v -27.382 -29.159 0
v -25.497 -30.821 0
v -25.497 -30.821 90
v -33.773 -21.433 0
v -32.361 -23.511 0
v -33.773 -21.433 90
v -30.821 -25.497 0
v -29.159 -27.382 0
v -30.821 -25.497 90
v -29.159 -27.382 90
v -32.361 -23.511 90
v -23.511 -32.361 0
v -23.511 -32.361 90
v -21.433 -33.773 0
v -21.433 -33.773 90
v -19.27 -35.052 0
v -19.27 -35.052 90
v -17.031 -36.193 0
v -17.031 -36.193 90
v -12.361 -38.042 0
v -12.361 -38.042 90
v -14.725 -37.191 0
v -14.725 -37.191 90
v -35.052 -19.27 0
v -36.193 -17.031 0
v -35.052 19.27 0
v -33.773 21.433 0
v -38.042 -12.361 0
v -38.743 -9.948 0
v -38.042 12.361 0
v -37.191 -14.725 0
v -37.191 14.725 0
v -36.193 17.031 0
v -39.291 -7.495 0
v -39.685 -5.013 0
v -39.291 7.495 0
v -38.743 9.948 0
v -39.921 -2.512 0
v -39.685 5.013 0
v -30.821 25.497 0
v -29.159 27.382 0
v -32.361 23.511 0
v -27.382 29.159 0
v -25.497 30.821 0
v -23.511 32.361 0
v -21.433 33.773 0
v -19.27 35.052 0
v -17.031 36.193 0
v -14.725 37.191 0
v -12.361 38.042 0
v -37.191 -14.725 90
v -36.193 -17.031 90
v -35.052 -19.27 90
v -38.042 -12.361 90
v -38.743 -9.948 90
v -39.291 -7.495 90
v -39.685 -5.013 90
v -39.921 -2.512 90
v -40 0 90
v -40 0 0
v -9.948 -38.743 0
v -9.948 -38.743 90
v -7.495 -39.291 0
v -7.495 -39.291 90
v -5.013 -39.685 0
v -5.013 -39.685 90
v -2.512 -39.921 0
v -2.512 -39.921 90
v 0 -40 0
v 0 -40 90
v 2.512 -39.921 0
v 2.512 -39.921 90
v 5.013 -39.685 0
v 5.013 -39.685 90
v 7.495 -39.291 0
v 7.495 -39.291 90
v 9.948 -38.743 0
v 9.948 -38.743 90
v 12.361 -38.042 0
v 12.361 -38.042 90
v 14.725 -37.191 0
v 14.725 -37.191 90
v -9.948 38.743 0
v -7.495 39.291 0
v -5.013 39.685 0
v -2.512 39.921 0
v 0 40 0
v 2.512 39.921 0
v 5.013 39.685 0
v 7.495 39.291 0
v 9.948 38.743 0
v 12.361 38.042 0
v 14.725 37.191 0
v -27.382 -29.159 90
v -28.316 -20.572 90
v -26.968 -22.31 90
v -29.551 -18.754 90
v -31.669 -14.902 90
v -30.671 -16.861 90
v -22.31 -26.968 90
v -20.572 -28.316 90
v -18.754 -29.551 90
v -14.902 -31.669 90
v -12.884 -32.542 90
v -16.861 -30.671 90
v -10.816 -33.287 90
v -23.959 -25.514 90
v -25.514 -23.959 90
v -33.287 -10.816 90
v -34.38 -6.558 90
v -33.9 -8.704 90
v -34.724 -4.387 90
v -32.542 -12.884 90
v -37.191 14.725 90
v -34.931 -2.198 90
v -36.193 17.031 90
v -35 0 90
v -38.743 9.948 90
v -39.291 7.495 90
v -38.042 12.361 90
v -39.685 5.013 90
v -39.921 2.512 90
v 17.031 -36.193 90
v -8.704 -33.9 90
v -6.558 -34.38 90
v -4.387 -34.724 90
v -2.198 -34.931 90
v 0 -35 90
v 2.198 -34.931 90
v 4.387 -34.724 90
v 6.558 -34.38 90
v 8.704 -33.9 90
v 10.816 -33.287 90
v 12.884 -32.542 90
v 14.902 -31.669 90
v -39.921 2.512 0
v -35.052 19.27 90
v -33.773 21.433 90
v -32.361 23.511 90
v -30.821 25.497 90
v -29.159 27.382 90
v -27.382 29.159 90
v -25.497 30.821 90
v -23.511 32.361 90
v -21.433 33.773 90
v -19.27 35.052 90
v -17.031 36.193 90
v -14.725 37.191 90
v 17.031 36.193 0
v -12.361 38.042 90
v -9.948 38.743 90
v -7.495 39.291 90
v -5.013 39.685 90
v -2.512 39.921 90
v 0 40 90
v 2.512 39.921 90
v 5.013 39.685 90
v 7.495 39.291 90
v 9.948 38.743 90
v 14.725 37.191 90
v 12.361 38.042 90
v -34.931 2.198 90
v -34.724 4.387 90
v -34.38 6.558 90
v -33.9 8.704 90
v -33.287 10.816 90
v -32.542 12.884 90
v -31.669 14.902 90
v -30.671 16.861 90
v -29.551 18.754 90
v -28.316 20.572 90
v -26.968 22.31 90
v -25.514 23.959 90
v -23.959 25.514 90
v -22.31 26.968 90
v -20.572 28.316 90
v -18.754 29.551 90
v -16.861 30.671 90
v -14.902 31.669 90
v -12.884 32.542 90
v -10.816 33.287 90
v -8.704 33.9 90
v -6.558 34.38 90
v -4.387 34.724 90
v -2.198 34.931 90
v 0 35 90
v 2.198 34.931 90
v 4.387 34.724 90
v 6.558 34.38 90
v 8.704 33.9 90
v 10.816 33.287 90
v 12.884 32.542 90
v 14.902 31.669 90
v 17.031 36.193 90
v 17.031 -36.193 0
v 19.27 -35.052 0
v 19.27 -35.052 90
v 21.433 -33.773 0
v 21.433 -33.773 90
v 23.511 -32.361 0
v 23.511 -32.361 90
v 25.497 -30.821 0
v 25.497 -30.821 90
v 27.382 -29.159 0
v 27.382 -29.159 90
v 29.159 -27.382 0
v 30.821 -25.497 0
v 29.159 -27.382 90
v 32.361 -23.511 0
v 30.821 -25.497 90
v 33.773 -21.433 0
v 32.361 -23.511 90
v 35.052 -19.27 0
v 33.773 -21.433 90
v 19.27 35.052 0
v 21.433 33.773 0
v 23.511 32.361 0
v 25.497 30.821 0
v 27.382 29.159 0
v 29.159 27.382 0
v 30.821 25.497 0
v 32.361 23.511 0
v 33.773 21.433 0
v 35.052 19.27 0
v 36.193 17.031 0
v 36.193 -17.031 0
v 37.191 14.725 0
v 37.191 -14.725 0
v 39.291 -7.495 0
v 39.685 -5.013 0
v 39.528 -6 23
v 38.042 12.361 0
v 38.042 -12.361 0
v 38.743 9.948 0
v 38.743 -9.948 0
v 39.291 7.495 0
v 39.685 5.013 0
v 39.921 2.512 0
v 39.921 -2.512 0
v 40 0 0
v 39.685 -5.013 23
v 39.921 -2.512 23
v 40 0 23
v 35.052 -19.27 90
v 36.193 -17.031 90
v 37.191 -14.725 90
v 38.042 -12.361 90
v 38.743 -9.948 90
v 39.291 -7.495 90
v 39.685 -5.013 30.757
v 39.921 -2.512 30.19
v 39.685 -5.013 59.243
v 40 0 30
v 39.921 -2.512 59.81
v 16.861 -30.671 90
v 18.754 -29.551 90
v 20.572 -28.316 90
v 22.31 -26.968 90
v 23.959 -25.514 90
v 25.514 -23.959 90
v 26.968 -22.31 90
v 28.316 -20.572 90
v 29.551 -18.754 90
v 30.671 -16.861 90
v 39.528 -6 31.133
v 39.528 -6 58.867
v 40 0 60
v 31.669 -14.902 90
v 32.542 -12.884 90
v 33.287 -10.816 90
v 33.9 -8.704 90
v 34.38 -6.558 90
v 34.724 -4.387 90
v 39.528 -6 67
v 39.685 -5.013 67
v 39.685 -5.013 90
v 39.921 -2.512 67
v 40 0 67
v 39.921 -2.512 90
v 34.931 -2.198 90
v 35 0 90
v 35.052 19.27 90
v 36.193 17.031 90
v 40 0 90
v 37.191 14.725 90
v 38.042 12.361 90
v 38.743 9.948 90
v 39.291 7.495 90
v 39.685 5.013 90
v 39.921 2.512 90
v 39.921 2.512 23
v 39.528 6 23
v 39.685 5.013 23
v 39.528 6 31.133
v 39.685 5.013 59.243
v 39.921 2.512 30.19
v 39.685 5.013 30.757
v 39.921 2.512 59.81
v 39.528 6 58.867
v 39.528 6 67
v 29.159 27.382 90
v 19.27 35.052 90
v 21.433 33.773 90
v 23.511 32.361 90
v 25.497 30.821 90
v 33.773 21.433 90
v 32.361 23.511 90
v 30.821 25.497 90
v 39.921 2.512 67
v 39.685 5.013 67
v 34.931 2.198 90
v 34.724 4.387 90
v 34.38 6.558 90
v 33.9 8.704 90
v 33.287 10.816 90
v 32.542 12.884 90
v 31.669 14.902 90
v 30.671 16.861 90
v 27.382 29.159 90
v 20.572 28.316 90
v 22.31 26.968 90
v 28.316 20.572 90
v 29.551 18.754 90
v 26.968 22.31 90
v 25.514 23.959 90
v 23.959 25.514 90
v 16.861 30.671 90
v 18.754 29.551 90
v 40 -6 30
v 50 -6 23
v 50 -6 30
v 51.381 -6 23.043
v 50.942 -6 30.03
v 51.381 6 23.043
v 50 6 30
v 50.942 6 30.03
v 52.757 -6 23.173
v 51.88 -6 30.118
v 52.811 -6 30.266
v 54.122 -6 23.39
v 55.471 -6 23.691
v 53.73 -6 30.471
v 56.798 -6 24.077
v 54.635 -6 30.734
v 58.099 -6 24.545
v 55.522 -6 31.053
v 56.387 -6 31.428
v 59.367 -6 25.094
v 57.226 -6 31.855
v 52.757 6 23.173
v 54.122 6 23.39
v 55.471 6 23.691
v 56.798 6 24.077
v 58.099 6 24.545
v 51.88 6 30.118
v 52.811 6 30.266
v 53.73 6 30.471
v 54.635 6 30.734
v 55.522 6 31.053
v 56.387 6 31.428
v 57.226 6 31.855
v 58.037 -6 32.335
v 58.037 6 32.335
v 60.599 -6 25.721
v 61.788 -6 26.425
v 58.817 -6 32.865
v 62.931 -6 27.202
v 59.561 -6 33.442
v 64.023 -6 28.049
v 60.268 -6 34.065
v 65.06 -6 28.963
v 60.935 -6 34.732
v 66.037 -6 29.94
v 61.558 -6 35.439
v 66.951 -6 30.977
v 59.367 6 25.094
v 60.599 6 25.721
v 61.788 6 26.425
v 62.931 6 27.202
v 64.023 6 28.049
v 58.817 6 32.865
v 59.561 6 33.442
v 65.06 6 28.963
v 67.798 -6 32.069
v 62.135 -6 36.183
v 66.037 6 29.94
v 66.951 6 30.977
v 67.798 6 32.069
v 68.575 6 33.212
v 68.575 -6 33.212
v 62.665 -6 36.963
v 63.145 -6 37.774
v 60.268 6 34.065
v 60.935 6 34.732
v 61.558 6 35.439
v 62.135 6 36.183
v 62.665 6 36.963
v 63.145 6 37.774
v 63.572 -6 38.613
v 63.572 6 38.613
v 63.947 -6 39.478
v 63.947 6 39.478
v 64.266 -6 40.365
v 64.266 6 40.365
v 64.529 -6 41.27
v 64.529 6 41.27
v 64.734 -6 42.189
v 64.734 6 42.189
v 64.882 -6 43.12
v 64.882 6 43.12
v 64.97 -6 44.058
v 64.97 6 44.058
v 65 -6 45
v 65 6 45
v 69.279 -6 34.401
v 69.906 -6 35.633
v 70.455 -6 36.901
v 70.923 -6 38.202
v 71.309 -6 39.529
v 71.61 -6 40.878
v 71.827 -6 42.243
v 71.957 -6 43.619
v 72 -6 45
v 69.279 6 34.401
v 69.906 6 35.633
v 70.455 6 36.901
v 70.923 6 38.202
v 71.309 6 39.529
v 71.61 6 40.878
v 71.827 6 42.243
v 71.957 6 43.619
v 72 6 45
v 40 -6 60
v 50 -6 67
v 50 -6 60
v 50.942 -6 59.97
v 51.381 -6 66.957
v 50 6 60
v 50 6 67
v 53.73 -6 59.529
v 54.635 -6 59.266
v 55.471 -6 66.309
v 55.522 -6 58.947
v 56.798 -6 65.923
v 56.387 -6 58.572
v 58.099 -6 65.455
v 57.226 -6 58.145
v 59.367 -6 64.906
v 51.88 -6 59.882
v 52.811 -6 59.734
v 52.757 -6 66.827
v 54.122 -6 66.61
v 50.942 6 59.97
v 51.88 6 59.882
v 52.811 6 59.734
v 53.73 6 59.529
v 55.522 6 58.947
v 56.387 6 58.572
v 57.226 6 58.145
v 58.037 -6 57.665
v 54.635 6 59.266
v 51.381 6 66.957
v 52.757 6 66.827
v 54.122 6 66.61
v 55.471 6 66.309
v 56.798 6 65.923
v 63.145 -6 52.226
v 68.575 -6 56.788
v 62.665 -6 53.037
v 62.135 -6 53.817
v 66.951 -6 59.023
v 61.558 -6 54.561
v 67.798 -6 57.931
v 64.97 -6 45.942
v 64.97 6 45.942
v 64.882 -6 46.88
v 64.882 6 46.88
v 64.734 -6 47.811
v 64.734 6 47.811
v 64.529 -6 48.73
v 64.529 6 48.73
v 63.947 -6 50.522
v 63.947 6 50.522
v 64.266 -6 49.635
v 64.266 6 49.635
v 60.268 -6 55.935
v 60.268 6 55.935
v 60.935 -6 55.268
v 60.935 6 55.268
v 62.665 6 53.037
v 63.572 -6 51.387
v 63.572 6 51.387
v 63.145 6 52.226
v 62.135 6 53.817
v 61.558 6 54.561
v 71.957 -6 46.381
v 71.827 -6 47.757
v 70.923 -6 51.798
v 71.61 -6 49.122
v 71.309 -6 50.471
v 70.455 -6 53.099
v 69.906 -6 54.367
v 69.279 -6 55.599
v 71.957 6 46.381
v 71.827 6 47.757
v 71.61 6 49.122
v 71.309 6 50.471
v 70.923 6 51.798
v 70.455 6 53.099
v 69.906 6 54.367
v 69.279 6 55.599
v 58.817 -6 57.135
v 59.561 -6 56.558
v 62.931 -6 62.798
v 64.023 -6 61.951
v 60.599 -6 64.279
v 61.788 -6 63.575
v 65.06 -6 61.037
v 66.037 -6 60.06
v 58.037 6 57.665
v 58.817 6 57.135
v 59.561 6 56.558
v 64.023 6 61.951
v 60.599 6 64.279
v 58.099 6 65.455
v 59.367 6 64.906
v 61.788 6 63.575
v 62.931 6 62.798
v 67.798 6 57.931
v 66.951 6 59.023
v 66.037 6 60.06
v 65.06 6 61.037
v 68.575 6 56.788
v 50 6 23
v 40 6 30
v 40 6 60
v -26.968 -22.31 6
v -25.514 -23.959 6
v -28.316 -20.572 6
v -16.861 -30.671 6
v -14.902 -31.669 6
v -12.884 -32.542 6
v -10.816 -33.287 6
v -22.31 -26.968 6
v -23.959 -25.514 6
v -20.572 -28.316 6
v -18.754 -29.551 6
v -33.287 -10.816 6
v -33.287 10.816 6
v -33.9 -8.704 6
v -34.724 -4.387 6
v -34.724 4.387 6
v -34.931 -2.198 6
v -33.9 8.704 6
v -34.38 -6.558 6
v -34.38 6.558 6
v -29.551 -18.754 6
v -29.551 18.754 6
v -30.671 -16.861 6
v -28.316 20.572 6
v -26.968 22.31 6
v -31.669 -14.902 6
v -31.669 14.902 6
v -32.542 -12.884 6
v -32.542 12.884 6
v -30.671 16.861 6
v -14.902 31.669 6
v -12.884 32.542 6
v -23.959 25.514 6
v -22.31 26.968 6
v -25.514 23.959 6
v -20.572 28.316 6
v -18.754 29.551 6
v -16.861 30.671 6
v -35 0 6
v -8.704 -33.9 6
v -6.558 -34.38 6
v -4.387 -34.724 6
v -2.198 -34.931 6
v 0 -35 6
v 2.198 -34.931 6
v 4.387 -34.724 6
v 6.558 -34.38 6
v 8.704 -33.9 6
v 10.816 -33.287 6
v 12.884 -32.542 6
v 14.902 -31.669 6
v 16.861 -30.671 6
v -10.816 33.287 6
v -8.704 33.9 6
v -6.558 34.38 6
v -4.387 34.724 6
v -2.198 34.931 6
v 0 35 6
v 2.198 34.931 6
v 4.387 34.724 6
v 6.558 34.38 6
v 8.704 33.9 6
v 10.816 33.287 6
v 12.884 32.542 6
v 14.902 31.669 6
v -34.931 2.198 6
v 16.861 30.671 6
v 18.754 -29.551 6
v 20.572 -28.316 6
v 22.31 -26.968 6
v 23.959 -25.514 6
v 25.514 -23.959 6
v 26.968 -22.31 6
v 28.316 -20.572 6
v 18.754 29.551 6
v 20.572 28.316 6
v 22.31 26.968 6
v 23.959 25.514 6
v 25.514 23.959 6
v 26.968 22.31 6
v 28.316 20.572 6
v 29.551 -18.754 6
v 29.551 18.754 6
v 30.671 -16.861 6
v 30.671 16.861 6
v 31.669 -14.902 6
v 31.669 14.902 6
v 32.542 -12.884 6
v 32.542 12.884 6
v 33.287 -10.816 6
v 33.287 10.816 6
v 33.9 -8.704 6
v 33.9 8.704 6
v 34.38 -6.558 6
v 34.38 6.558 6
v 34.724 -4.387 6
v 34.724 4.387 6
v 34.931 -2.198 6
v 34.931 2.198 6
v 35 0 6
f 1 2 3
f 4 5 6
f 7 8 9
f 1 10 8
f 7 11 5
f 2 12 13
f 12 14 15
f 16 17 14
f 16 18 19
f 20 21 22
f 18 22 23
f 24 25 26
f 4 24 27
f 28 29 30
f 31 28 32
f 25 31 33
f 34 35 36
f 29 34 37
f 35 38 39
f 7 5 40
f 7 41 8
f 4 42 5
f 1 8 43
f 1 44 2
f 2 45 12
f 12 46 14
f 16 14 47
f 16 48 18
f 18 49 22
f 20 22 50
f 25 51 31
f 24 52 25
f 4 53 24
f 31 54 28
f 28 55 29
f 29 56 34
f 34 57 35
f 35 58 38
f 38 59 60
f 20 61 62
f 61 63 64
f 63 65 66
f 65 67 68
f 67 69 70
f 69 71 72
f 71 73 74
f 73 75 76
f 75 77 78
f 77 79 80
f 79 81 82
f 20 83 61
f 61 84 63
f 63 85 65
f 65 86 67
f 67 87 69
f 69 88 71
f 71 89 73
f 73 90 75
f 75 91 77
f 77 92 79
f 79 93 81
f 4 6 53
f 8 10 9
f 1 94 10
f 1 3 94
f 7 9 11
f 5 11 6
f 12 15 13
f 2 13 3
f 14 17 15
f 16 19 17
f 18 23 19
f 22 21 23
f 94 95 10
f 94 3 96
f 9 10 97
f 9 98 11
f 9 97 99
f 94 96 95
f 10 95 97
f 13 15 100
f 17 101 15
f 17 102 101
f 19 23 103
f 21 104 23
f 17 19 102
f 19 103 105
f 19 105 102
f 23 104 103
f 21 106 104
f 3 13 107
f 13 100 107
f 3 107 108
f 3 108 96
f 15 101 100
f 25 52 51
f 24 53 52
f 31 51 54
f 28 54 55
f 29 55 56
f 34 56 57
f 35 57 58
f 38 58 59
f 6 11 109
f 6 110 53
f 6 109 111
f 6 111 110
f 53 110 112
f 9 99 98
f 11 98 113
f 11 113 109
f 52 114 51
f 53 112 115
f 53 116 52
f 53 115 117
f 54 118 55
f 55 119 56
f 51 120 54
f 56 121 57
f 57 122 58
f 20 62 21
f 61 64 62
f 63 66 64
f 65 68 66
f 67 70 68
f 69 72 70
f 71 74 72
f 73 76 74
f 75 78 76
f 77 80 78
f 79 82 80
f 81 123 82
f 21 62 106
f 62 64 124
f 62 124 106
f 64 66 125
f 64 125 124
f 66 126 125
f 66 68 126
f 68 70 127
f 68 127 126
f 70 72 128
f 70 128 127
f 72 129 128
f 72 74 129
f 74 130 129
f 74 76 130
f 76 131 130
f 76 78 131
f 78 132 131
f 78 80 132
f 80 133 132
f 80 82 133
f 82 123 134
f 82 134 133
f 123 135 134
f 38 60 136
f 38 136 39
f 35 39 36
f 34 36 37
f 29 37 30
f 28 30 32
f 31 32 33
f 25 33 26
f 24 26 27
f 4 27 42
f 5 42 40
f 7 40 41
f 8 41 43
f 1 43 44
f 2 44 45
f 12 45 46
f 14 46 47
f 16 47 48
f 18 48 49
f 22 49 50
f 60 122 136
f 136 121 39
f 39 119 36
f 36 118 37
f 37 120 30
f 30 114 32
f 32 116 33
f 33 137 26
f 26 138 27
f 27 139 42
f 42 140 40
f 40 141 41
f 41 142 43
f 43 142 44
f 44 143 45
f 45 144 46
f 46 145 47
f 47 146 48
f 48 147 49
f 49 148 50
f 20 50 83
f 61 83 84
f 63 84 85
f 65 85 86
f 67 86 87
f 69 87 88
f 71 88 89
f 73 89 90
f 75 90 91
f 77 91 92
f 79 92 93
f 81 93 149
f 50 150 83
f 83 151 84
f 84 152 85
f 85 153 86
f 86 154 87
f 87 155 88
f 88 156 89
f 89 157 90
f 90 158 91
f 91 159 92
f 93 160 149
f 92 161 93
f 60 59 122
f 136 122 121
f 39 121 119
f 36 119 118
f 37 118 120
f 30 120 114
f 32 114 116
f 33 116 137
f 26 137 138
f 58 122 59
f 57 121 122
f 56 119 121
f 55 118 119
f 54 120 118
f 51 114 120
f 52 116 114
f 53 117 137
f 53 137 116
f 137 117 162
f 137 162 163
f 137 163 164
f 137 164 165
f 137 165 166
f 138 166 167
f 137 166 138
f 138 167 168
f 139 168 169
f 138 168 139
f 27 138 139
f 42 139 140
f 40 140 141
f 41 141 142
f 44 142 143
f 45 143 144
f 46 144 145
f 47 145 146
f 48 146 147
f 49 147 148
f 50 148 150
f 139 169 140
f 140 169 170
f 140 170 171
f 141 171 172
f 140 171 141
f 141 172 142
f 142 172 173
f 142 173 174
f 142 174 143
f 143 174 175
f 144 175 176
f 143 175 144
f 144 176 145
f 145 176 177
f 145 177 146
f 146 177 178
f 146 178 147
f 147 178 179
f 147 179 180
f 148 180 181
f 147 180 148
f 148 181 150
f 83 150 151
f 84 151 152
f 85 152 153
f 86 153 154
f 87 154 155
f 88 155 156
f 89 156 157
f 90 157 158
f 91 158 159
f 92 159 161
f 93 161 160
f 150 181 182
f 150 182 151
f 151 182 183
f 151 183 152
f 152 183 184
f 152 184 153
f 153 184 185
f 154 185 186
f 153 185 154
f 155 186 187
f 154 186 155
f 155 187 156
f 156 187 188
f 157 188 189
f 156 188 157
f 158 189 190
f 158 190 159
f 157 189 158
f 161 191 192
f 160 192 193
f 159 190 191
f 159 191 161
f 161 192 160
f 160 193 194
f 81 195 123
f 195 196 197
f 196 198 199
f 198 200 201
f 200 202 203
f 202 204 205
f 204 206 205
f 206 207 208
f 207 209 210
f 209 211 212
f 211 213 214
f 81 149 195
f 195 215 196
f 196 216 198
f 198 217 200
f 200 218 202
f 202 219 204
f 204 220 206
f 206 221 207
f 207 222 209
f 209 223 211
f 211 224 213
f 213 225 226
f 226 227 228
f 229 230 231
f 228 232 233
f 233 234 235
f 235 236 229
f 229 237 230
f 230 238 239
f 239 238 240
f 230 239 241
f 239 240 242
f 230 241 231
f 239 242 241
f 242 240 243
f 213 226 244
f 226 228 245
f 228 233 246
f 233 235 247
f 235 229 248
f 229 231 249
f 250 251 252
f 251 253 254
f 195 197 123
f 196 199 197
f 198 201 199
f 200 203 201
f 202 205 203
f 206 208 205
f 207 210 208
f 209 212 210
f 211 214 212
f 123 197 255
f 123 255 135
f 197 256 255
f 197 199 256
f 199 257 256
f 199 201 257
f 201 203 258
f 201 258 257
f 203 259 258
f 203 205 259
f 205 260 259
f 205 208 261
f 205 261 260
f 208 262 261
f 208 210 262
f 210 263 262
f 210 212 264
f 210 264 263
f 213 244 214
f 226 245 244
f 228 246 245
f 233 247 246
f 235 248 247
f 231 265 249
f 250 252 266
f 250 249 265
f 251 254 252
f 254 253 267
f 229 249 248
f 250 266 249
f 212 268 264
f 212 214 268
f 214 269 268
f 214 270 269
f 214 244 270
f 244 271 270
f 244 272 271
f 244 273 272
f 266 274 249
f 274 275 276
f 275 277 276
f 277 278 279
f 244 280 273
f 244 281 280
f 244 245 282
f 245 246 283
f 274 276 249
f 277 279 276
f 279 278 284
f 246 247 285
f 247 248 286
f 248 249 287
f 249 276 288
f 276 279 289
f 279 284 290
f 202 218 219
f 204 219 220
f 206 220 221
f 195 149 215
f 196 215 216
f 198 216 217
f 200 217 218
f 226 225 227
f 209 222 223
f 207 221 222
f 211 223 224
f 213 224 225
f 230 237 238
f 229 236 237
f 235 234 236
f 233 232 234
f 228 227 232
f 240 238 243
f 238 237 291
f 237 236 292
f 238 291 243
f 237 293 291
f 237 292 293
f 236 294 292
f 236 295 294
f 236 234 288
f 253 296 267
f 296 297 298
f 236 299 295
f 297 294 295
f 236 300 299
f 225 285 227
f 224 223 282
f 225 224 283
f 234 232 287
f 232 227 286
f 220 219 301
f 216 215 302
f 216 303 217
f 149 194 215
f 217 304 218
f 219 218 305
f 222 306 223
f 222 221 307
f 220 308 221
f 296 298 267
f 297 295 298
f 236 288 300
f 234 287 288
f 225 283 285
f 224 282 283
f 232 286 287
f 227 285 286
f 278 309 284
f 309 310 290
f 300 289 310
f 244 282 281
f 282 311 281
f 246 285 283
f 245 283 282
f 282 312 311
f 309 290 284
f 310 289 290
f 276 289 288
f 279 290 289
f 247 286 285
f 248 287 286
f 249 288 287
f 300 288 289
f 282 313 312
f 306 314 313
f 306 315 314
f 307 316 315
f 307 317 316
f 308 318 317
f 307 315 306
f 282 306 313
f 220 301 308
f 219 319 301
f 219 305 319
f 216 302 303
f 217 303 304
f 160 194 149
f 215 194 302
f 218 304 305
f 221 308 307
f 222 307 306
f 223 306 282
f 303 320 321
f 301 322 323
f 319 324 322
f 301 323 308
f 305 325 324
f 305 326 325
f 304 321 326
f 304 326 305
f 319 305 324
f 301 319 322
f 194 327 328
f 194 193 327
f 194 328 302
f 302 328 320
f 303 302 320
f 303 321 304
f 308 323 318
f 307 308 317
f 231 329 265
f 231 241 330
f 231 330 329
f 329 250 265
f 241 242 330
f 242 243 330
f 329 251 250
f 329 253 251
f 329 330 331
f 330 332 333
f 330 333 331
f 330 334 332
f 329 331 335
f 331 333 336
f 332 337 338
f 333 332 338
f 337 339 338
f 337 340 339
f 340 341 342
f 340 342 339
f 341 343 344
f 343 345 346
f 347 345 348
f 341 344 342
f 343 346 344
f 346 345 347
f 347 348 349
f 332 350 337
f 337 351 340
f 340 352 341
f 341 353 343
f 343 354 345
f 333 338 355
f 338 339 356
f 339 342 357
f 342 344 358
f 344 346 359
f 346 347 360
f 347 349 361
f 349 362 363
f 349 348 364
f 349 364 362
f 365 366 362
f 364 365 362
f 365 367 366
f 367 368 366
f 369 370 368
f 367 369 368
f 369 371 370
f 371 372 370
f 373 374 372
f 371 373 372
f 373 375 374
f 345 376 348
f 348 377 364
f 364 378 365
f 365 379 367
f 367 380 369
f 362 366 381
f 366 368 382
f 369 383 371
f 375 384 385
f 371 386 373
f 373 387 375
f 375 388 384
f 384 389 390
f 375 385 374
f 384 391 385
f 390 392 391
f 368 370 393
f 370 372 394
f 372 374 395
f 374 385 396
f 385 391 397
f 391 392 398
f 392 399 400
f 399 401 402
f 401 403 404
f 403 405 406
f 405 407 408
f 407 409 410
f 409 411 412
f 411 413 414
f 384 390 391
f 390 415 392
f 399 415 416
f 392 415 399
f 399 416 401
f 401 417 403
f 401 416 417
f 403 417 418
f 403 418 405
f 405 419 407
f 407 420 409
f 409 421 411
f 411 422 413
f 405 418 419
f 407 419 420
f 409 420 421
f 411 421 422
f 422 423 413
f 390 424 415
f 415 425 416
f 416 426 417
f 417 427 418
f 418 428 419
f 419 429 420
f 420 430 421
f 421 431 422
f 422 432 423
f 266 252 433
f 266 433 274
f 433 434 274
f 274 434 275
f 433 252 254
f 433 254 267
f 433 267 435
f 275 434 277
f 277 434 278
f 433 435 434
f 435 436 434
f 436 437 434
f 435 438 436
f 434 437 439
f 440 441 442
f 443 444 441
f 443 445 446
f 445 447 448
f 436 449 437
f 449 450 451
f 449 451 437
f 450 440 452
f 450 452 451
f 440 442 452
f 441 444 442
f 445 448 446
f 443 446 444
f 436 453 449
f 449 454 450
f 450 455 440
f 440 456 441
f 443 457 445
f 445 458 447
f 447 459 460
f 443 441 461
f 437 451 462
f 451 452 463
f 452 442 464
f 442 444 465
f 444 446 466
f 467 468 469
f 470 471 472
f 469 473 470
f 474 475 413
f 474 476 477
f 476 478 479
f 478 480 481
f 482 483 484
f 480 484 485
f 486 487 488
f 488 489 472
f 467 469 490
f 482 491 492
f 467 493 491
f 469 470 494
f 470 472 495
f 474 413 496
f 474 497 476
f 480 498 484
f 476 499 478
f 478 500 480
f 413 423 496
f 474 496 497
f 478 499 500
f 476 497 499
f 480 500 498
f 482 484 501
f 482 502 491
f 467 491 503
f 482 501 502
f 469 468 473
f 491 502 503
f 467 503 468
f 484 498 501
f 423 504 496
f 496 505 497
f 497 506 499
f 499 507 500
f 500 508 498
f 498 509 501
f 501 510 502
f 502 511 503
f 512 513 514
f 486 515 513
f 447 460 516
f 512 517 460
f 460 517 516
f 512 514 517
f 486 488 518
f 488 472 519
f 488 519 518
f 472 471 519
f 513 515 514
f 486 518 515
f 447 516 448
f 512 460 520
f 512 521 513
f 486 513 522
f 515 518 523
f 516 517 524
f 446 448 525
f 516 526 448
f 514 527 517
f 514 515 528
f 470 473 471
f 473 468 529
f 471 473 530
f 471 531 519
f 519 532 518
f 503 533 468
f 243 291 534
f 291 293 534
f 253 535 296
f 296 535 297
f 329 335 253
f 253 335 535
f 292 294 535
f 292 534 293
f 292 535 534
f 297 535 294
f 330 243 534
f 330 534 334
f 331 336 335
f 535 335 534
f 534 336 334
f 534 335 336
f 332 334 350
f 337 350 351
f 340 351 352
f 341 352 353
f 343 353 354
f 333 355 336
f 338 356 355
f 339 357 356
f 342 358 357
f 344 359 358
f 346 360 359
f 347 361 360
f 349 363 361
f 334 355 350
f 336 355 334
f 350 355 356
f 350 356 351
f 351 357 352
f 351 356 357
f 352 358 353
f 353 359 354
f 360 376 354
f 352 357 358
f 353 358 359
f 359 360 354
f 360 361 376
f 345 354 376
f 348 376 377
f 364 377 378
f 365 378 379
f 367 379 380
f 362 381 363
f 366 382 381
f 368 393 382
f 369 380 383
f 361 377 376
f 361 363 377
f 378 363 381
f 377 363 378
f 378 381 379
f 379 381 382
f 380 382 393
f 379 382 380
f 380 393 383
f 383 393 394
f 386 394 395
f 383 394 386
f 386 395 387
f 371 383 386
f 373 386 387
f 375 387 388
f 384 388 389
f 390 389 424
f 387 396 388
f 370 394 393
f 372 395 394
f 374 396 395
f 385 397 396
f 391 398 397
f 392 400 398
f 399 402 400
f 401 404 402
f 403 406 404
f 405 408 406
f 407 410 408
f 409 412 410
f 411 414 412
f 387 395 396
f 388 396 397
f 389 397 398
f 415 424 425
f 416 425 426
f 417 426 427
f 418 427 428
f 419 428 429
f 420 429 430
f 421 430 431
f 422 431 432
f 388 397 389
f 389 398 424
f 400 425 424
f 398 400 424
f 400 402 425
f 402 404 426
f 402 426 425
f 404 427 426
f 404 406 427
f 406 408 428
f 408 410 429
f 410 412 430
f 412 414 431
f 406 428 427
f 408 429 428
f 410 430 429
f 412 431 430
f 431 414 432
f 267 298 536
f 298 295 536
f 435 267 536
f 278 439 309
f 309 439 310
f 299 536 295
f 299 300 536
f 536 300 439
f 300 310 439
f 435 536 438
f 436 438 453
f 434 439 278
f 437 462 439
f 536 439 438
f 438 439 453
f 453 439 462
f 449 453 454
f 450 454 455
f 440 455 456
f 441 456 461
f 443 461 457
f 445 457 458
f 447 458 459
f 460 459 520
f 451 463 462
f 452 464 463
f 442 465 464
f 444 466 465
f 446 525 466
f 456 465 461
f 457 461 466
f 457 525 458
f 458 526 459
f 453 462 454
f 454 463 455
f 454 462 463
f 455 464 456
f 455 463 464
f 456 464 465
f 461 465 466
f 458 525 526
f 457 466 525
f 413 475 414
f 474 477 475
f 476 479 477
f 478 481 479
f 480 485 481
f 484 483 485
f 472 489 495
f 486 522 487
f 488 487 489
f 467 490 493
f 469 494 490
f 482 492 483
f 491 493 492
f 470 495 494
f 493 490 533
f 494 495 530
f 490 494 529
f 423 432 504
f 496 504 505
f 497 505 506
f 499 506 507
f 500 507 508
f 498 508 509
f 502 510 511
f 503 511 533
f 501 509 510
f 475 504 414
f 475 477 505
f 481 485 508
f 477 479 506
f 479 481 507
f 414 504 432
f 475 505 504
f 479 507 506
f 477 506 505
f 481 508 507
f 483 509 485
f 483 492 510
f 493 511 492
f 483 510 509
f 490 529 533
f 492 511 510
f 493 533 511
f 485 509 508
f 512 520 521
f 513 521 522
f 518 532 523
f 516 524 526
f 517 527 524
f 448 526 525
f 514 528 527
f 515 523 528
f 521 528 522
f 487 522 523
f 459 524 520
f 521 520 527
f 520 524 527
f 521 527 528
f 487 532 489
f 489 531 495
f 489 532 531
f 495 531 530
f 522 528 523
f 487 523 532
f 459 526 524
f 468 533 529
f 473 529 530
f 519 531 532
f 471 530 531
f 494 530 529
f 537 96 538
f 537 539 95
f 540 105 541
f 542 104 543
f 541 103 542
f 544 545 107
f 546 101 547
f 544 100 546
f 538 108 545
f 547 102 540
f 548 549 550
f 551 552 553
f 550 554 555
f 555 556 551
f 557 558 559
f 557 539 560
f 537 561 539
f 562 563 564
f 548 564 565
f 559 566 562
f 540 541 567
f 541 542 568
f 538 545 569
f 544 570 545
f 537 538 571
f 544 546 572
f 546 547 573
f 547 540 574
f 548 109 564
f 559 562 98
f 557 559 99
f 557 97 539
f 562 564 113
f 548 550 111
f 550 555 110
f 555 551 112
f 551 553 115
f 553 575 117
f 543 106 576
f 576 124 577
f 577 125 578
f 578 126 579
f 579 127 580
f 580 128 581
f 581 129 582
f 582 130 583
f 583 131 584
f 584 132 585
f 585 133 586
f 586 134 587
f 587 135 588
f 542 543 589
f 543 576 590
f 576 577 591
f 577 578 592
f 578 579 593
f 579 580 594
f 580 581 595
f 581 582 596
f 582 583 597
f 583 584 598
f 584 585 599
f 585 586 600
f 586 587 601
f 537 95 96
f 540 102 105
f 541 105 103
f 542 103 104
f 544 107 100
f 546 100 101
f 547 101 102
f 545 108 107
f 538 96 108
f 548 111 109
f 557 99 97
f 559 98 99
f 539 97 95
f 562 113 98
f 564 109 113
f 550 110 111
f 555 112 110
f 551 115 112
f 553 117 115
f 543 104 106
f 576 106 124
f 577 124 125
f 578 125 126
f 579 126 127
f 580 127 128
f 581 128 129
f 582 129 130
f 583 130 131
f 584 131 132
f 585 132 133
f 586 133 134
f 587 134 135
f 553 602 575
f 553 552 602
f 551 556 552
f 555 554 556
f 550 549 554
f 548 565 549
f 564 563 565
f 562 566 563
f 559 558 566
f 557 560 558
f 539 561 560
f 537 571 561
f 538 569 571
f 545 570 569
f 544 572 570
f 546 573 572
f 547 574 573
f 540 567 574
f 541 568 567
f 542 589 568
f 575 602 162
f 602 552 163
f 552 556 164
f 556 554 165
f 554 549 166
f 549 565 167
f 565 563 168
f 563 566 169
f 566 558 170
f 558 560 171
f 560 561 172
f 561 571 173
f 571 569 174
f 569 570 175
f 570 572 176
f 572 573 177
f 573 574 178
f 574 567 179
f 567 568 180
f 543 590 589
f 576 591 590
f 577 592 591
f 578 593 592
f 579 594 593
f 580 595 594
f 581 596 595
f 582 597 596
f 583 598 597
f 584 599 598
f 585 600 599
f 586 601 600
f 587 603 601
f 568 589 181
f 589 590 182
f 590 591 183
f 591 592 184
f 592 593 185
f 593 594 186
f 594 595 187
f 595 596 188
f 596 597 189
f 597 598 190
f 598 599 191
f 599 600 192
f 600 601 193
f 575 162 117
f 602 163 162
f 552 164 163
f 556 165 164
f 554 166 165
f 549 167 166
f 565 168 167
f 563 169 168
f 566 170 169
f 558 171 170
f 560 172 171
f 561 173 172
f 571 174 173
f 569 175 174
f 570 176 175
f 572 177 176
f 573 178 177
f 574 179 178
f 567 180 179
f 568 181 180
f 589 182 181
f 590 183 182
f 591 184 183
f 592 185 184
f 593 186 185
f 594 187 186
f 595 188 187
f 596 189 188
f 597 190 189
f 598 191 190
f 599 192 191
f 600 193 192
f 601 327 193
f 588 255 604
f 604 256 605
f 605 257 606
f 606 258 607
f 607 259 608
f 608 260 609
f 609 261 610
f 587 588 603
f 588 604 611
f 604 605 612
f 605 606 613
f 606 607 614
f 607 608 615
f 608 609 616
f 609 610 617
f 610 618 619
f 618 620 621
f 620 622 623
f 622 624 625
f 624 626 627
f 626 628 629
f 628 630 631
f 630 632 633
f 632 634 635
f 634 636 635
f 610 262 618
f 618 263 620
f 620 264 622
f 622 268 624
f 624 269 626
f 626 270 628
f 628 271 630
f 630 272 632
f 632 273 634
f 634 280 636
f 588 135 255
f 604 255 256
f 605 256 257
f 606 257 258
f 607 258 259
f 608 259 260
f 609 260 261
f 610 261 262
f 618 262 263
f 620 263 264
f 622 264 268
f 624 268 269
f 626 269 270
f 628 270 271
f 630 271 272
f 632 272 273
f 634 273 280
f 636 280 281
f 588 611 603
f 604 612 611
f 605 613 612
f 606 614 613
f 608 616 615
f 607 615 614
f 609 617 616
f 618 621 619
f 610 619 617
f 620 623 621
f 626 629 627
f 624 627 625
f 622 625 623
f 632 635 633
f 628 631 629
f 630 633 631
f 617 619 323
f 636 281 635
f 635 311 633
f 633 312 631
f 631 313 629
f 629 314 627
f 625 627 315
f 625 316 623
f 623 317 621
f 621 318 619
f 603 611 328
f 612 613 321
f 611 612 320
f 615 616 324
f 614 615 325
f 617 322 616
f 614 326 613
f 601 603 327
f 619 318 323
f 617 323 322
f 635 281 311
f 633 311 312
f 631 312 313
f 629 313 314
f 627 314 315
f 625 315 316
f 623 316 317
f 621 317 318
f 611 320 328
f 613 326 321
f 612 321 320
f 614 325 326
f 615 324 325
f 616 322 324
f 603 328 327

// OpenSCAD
$fn = 100;

difference() {
    union() {
        // 本体外形 (外径 80mm, 高さ 90mm)
        cylinder(r=40, h=90);
        
        // 取手 (+X方向に配置、高さ中央 Z=45mm)
        translate([0, 0, 45])
        rotate([90, 0, 0])
        linear_extrude(height=12, center=true, convexity=4)
        difference() {
            // 取手外形 (D字形状)
            hull() {
                translate([30, -22]) square([20, 44]);
                translate([50, 0]) circle(r=22);
            }
            // 取手内側空間 (高さ 30mm × 幅 25mm: X=40〜65, Z=-15〜15)
            hull() {
                translate([40, -15]) square([10, 30]);
                translate([50, 0]) circle(r=15);
            }
        }
    }
    // 内側中空部 (内径 70mm, 底面厚み 6mm)
    translate([0, 0, 6])
        cylinder(r=35, h=90 - 6 + 1);
}
